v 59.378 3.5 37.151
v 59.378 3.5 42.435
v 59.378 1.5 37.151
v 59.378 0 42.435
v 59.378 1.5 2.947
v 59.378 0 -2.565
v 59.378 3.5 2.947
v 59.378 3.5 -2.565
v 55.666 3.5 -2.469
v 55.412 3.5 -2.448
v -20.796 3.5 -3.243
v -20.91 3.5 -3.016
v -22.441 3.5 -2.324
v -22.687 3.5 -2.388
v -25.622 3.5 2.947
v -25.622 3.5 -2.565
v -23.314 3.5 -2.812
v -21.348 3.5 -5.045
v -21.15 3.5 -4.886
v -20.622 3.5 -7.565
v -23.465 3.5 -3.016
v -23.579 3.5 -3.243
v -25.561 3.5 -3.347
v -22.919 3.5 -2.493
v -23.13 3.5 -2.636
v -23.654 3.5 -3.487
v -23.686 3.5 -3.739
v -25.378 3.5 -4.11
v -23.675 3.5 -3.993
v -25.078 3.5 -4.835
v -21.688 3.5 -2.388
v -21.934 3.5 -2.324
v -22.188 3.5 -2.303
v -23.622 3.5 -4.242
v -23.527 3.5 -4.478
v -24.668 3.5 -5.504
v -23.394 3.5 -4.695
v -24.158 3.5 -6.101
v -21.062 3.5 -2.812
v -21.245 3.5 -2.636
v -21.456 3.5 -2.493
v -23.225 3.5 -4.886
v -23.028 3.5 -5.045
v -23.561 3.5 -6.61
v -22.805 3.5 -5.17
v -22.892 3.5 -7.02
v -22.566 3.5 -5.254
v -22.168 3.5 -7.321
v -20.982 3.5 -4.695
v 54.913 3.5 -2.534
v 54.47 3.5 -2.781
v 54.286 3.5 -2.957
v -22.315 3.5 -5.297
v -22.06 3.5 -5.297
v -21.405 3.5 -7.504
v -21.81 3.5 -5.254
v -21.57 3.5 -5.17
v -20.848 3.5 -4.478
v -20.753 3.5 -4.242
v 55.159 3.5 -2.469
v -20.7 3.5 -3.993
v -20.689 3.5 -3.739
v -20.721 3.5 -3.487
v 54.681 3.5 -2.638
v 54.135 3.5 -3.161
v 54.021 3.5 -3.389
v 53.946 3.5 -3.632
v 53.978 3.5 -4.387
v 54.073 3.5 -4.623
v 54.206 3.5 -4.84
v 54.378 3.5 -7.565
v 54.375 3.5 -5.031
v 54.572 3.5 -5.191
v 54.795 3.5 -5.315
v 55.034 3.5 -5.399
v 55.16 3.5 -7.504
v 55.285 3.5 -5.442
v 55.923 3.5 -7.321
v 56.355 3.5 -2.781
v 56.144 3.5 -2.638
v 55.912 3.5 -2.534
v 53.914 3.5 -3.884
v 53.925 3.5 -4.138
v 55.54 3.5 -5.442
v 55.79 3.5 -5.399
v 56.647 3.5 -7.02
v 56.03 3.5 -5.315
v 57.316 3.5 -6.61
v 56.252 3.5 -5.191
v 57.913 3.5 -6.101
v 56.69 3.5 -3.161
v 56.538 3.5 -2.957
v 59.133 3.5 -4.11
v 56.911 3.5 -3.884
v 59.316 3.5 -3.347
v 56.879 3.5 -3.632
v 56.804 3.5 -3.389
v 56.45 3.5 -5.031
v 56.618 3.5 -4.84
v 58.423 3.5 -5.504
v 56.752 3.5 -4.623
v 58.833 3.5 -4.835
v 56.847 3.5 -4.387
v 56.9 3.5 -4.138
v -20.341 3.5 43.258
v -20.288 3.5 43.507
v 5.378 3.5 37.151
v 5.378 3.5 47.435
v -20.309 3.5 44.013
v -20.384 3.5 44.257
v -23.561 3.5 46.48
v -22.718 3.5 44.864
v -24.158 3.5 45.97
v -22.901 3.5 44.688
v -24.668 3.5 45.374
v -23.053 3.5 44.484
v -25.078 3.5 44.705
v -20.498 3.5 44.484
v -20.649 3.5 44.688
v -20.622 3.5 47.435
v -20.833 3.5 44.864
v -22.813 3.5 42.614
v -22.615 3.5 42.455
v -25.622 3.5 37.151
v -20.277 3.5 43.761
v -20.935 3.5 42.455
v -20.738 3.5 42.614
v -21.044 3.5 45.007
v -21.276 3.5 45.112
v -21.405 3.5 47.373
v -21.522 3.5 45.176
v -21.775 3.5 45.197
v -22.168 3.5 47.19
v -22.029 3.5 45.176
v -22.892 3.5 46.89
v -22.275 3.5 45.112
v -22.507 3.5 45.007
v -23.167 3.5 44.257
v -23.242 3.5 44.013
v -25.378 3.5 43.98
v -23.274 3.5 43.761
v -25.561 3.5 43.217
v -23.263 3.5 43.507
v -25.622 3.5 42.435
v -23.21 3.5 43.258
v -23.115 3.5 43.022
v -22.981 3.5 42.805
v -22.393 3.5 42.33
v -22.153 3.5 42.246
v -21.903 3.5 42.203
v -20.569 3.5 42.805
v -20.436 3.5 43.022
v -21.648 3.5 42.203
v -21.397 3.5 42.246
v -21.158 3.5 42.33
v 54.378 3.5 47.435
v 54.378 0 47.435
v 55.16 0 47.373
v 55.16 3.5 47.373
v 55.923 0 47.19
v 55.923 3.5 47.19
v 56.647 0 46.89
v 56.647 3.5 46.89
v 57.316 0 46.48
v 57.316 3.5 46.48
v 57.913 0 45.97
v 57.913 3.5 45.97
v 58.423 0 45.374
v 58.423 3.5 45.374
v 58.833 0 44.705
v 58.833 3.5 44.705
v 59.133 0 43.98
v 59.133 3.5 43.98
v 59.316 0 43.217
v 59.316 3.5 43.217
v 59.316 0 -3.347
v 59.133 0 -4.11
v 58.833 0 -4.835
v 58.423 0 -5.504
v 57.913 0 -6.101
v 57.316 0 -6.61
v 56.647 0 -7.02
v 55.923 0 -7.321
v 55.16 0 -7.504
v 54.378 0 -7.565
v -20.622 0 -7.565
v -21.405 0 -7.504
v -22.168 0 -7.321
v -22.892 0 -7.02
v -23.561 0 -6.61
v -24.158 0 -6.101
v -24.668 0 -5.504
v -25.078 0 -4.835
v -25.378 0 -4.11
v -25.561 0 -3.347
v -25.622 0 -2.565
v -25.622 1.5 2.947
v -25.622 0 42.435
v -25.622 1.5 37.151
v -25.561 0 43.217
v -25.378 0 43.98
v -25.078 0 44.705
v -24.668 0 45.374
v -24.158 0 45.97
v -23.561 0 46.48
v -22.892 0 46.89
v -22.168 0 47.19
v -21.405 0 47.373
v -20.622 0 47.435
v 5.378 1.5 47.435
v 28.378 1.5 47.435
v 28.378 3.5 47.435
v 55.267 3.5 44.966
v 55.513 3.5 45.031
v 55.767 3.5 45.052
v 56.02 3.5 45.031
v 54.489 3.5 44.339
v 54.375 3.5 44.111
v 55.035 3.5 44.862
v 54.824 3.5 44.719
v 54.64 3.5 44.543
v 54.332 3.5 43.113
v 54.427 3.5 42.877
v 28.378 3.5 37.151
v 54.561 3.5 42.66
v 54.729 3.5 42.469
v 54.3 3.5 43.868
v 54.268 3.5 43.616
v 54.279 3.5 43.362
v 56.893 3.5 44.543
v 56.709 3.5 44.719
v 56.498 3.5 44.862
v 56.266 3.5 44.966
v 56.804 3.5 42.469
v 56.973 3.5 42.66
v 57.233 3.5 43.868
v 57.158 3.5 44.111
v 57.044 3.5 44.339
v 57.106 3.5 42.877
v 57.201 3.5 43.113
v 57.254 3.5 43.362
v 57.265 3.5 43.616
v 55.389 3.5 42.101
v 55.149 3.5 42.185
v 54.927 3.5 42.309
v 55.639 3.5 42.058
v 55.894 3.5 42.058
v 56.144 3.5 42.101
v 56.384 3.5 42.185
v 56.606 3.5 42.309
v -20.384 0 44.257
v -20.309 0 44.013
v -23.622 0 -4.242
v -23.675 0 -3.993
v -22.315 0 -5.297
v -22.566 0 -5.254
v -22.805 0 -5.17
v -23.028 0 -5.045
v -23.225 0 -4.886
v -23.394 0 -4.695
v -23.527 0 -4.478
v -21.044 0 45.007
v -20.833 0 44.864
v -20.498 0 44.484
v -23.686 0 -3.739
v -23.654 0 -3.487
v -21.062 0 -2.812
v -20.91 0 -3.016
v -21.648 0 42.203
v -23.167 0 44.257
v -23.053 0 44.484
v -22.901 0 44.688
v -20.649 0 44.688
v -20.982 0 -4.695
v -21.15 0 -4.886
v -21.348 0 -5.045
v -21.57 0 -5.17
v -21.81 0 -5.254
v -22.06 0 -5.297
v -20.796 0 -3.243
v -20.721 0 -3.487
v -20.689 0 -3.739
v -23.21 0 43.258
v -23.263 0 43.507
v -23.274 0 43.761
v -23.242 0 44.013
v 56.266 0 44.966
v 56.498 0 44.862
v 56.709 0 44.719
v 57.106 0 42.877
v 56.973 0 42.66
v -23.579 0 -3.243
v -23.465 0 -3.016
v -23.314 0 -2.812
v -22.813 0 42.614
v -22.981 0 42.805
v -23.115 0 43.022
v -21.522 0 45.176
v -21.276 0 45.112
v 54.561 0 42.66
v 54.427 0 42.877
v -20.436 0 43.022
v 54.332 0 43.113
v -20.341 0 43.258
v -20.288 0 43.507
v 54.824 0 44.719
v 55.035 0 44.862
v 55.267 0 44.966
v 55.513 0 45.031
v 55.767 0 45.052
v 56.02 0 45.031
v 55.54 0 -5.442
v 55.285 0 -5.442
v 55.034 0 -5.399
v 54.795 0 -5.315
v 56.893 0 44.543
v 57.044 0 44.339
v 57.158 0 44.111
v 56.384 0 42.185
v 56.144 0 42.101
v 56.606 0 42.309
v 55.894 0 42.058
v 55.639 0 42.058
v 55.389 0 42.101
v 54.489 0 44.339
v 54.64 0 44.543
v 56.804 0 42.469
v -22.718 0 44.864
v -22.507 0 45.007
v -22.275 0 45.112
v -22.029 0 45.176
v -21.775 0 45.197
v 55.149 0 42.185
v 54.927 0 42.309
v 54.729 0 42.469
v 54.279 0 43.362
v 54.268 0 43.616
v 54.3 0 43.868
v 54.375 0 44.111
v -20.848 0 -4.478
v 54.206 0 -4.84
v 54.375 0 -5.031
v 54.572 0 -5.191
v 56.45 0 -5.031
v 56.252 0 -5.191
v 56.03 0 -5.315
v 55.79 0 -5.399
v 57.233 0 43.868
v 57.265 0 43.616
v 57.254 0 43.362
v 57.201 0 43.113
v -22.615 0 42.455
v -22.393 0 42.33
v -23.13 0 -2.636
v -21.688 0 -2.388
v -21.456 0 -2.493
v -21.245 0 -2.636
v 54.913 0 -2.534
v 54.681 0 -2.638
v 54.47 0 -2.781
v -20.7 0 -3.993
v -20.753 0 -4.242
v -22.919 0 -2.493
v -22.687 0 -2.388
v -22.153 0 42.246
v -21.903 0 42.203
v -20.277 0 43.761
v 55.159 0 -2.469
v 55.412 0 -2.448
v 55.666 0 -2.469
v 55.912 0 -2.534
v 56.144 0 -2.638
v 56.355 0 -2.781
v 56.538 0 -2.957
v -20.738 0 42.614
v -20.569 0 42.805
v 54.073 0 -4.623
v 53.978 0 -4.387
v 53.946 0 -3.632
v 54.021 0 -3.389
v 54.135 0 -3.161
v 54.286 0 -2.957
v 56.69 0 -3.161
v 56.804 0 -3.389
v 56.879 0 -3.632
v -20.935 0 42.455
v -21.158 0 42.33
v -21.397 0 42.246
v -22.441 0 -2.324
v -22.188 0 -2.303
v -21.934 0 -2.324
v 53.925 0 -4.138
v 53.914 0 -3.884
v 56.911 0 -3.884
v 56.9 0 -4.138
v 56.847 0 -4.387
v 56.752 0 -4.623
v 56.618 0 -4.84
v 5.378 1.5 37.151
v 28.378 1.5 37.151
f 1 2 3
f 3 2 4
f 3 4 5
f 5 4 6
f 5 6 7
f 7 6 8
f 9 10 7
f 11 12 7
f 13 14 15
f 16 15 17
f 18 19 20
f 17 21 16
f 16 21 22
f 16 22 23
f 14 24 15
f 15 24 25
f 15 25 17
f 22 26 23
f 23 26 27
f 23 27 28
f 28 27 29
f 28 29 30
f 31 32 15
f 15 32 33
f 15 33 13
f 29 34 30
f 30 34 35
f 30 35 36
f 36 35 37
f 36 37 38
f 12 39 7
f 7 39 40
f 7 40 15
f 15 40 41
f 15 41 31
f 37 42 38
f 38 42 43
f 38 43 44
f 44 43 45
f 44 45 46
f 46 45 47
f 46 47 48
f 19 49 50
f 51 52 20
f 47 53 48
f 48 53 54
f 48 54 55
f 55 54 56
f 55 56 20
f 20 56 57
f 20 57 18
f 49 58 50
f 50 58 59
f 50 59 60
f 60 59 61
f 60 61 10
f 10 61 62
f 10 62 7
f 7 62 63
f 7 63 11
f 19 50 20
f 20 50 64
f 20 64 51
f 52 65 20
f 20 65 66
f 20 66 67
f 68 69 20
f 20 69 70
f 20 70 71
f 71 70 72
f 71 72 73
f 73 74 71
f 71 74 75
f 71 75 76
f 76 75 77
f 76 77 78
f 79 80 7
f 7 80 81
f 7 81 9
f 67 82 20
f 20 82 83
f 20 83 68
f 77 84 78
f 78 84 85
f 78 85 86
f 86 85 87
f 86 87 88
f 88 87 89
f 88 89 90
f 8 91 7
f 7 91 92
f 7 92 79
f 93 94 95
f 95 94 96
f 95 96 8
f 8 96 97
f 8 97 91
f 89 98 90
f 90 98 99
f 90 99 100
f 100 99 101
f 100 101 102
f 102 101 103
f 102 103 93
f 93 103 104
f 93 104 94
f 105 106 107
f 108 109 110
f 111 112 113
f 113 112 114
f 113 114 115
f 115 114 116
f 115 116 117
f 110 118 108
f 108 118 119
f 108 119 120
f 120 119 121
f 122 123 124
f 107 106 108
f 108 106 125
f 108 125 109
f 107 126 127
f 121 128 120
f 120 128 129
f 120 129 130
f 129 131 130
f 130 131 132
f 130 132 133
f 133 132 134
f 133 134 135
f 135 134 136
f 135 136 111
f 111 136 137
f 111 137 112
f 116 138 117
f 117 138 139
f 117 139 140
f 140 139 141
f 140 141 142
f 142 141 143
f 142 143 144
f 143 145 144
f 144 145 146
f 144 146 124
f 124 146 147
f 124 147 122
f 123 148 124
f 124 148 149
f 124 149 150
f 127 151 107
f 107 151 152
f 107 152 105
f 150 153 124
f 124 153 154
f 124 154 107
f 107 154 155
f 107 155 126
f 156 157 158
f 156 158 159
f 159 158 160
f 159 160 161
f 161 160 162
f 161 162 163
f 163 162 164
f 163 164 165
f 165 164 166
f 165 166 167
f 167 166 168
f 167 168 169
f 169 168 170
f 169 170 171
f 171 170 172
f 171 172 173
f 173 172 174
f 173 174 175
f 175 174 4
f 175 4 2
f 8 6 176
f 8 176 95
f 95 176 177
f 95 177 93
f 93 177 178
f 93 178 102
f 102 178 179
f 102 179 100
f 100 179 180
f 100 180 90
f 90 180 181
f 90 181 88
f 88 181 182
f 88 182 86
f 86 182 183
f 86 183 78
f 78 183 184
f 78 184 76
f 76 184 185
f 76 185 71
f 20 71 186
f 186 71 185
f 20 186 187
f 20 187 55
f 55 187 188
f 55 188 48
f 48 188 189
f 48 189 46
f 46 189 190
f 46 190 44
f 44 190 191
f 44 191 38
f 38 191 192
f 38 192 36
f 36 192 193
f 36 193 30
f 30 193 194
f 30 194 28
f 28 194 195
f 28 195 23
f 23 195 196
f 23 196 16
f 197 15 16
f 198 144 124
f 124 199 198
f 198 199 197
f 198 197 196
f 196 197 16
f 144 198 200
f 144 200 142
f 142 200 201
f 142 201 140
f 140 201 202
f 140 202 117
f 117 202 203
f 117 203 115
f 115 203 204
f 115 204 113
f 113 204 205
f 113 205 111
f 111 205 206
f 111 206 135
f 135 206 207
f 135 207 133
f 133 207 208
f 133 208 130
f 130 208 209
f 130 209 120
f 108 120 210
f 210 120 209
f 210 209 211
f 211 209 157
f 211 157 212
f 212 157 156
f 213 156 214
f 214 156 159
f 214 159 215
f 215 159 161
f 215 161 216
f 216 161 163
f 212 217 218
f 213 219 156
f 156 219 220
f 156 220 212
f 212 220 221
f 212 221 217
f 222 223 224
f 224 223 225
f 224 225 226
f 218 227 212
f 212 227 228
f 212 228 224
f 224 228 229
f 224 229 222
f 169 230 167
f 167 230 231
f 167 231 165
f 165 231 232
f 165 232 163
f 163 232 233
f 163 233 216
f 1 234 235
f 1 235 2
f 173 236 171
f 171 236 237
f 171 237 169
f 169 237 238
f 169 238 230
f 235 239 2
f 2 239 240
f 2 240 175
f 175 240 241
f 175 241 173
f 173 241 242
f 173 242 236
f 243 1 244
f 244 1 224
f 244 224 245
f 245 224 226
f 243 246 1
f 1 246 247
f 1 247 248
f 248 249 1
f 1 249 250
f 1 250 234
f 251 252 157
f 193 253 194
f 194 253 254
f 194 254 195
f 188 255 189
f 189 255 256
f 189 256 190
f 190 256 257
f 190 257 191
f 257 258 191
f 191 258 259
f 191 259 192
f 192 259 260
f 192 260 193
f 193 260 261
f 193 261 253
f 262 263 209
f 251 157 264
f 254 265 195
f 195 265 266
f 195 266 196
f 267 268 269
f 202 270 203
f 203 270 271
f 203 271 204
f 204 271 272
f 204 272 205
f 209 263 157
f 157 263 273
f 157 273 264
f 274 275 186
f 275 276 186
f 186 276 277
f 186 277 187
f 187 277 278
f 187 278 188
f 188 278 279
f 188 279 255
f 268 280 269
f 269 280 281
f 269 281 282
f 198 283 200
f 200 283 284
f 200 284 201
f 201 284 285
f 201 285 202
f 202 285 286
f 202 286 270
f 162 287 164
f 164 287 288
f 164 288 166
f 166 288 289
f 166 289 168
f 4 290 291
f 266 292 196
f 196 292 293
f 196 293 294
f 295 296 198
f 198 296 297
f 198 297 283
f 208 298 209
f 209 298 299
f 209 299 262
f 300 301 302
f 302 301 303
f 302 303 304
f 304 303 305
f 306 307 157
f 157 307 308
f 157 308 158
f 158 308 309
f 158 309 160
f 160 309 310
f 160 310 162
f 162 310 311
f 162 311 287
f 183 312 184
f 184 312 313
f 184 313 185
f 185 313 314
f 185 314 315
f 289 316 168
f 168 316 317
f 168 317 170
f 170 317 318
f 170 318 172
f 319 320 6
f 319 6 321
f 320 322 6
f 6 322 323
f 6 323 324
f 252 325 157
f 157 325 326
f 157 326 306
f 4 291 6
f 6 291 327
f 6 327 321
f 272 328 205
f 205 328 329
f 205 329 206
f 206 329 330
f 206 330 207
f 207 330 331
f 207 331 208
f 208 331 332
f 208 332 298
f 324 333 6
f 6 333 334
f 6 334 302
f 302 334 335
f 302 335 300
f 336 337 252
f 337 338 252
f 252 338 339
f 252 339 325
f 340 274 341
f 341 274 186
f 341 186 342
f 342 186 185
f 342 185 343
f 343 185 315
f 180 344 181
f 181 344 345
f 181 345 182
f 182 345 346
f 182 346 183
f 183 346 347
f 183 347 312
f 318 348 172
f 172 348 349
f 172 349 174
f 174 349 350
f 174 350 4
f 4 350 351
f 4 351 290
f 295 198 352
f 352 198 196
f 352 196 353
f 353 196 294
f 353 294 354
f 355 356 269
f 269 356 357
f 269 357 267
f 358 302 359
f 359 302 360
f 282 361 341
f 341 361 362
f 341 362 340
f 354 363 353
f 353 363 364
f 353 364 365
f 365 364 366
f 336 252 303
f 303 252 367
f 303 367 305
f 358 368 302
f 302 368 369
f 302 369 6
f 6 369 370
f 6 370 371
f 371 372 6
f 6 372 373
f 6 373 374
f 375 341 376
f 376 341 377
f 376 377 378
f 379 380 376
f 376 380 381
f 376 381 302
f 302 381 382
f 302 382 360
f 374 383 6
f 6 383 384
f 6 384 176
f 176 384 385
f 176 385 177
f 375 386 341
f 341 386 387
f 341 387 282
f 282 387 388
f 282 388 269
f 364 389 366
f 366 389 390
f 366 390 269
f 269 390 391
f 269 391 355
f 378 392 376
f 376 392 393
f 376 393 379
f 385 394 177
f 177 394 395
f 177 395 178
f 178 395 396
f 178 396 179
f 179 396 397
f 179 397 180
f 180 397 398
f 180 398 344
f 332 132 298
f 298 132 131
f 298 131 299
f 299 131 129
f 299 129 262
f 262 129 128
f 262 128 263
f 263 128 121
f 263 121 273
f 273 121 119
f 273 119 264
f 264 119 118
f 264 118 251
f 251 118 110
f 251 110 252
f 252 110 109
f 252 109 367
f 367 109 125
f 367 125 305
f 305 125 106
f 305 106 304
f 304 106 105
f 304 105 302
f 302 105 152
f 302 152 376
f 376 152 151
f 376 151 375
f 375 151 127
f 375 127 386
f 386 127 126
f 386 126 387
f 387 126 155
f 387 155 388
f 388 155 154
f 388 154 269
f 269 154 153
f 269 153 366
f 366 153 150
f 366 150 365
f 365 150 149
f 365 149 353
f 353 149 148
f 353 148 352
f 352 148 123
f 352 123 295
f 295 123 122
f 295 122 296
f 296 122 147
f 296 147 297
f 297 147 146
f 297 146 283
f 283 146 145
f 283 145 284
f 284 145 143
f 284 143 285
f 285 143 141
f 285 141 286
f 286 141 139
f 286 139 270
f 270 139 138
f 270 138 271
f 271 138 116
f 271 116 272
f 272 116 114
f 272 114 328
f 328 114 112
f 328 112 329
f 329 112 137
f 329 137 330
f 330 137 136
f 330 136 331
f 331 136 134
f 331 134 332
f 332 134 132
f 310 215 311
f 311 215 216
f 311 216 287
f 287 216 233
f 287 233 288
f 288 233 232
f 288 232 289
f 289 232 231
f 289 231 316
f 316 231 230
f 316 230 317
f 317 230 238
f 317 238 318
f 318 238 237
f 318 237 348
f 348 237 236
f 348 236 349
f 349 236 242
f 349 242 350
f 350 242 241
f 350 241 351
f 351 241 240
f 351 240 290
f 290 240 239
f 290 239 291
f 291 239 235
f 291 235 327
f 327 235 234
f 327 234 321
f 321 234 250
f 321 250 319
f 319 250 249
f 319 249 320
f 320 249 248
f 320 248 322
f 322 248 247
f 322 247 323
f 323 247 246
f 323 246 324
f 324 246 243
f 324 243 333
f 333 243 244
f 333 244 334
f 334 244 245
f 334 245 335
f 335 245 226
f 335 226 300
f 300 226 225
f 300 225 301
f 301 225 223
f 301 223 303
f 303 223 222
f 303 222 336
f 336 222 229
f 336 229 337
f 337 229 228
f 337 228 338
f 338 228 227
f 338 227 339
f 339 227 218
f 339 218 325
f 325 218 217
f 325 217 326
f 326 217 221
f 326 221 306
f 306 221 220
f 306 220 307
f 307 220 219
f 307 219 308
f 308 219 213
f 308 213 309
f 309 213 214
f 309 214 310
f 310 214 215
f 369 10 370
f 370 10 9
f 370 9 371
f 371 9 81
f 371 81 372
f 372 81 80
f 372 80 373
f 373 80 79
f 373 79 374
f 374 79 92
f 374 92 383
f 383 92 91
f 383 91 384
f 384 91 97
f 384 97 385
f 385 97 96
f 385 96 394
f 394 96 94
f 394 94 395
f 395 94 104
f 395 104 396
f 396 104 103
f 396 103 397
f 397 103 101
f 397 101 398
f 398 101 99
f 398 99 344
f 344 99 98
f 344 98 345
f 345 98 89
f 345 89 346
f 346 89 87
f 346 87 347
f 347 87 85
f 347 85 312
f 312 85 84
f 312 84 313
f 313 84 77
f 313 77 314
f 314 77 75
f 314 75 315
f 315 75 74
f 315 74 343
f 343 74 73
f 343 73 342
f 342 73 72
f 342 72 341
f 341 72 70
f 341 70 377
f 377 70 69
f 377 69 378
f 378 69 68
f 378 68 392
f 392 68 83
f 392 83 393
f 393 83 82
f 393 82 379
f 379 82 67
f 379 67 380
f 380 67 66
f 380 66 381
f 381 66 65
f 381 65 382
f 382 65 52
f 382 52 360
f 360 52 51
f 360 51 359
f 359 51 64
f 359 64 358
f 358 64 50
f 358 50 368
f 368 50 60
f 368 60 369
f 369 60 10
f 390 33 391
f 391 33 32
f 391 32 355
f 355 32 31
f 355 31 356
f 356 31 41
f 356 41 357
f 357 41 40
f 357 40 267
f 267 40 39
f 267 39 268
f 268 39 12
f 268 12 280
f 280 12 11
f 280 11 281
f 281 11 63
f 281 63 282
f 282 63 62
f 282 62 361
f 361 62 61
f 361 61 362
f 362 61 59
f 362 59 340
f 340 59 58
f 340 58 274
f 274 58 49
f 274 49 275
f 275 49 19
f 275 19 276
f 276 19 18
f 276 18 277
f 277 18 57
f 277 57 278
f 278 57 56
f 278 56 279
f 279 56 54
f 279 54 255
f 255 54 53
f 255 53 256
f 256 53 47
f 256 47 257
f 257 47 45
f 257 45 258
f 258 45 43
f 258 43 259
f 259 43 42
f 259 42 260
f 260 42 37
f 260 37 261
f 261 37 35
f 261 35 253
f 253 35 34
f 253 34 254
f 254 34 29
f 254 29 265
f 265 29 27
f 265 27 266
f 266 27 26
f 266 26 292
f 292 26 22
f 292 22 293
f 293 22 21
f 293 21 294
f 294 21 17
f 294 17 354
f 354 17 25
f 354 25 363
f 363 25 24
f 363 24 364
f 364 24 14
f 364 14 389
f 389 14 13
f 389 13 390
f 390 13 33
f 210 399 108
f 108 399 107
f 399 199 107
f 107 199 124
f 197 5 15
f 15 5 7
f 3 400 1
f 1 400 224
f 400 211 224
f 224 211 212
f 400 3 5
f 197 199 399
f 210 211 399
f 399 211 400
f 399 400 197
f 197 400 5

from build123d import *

# Parameters (mm, degrees)
BOSS_EXTRUDE1_DEPTH = 3.5
SKETCH2_R           = 1.5
CUT_EXTRUDE1_DEPTH  = 3.5
SKETCH3_W           = 23
SKETCH3_H           = 10.283770076
CUT_EXTRUDE2_DEPTH  = 2


with BuildPart() as part:
    # Sketch1 → Boss-Extrude1 (new body)
    with BuildSketch(Plane(origin=(0, 0, 0), x_dir=(1, 0, 0), z_dir=(0, 1, 0))):
        with BuildLine():
            Line((-20.62248996, 7.565261044), (54.37751004, 7.565261044))
            ThreePointArc((54.37751004, 7.565261044), (57.913043946, 6.10079495), (59.37751004, 2.565261044))
            Line((59.37751004, 2.565261044), (59.37751004, -42.434738956))
            ThreePointArc((59.37751004, -42.434738956), (57.913043946, -45.970272862), (54.37751004, -47.434738956))
            Line((54.37751004, -47.434738956), (-20.62248996, -47.434738956))
            ThreePointArc((-20.62248996, -47.434738956), (-24.158023866, -45.970272862), (-25.62248996, -42.434738956))
            Line((-25.62248996, -42.434738956), (-25.62248996, 2.565261044))
            ThreePointArc((-25.62248996, 2.565261044), (-24.158023866, 6.10079495), (-20.62248996, 7.565261044))
        make_face()
    extrude(amount=BOSS_EXTRUDE1_DEPTH)

    # Sketch2 → Cut-Extrude1 (cut)
    with BuildSketch(Plane(origin=(0, 3.5, 0), x_dir=(1, 0, 0), z_dir=(0, 1, 0))):
        with Locations((-22.187566987, 3.802718615)):
            Circle(SKETCH2_R)
        with Locations((55.412433013, 3.947865339)):
            Circle(SKETCH2_R)
        with Locations((55.766505812, -43.552134661)):
            Circle(SKETCH2_R)
        with Locations((-21.775437199, -43.697281385)):
            Circle(SKETCH2_R)
    extrude(amount=-CUT_EXTRUDE1_DEPTH, mode=Mode.SUBTRACT)

    # Sketch3 → Cut-Extrude2 (cut)
    with BuildSketch(Plane(origin=(0, 3.5, 0), x_dir=(1, 0, 0), z_dir=(0, 1, 0))):
        with Locations((16.87751004, -42.292853918)):
            Rectangle(SKETCH3_W, SKETCH3_H)
        Polygon((59.37751004, -2.947281385), (-25.62248996, -2.947281385), (-25.62248996, -37.15096888), (5.37751004, -37.15096888), (28.37751004, -37.15096888), (59.37751004, -37.15096888), align=None)
    extrude(amount=-CUT_EXTRUDE2_DEPTH, mode=Mode.SUBTRACT)


solid = part.part
